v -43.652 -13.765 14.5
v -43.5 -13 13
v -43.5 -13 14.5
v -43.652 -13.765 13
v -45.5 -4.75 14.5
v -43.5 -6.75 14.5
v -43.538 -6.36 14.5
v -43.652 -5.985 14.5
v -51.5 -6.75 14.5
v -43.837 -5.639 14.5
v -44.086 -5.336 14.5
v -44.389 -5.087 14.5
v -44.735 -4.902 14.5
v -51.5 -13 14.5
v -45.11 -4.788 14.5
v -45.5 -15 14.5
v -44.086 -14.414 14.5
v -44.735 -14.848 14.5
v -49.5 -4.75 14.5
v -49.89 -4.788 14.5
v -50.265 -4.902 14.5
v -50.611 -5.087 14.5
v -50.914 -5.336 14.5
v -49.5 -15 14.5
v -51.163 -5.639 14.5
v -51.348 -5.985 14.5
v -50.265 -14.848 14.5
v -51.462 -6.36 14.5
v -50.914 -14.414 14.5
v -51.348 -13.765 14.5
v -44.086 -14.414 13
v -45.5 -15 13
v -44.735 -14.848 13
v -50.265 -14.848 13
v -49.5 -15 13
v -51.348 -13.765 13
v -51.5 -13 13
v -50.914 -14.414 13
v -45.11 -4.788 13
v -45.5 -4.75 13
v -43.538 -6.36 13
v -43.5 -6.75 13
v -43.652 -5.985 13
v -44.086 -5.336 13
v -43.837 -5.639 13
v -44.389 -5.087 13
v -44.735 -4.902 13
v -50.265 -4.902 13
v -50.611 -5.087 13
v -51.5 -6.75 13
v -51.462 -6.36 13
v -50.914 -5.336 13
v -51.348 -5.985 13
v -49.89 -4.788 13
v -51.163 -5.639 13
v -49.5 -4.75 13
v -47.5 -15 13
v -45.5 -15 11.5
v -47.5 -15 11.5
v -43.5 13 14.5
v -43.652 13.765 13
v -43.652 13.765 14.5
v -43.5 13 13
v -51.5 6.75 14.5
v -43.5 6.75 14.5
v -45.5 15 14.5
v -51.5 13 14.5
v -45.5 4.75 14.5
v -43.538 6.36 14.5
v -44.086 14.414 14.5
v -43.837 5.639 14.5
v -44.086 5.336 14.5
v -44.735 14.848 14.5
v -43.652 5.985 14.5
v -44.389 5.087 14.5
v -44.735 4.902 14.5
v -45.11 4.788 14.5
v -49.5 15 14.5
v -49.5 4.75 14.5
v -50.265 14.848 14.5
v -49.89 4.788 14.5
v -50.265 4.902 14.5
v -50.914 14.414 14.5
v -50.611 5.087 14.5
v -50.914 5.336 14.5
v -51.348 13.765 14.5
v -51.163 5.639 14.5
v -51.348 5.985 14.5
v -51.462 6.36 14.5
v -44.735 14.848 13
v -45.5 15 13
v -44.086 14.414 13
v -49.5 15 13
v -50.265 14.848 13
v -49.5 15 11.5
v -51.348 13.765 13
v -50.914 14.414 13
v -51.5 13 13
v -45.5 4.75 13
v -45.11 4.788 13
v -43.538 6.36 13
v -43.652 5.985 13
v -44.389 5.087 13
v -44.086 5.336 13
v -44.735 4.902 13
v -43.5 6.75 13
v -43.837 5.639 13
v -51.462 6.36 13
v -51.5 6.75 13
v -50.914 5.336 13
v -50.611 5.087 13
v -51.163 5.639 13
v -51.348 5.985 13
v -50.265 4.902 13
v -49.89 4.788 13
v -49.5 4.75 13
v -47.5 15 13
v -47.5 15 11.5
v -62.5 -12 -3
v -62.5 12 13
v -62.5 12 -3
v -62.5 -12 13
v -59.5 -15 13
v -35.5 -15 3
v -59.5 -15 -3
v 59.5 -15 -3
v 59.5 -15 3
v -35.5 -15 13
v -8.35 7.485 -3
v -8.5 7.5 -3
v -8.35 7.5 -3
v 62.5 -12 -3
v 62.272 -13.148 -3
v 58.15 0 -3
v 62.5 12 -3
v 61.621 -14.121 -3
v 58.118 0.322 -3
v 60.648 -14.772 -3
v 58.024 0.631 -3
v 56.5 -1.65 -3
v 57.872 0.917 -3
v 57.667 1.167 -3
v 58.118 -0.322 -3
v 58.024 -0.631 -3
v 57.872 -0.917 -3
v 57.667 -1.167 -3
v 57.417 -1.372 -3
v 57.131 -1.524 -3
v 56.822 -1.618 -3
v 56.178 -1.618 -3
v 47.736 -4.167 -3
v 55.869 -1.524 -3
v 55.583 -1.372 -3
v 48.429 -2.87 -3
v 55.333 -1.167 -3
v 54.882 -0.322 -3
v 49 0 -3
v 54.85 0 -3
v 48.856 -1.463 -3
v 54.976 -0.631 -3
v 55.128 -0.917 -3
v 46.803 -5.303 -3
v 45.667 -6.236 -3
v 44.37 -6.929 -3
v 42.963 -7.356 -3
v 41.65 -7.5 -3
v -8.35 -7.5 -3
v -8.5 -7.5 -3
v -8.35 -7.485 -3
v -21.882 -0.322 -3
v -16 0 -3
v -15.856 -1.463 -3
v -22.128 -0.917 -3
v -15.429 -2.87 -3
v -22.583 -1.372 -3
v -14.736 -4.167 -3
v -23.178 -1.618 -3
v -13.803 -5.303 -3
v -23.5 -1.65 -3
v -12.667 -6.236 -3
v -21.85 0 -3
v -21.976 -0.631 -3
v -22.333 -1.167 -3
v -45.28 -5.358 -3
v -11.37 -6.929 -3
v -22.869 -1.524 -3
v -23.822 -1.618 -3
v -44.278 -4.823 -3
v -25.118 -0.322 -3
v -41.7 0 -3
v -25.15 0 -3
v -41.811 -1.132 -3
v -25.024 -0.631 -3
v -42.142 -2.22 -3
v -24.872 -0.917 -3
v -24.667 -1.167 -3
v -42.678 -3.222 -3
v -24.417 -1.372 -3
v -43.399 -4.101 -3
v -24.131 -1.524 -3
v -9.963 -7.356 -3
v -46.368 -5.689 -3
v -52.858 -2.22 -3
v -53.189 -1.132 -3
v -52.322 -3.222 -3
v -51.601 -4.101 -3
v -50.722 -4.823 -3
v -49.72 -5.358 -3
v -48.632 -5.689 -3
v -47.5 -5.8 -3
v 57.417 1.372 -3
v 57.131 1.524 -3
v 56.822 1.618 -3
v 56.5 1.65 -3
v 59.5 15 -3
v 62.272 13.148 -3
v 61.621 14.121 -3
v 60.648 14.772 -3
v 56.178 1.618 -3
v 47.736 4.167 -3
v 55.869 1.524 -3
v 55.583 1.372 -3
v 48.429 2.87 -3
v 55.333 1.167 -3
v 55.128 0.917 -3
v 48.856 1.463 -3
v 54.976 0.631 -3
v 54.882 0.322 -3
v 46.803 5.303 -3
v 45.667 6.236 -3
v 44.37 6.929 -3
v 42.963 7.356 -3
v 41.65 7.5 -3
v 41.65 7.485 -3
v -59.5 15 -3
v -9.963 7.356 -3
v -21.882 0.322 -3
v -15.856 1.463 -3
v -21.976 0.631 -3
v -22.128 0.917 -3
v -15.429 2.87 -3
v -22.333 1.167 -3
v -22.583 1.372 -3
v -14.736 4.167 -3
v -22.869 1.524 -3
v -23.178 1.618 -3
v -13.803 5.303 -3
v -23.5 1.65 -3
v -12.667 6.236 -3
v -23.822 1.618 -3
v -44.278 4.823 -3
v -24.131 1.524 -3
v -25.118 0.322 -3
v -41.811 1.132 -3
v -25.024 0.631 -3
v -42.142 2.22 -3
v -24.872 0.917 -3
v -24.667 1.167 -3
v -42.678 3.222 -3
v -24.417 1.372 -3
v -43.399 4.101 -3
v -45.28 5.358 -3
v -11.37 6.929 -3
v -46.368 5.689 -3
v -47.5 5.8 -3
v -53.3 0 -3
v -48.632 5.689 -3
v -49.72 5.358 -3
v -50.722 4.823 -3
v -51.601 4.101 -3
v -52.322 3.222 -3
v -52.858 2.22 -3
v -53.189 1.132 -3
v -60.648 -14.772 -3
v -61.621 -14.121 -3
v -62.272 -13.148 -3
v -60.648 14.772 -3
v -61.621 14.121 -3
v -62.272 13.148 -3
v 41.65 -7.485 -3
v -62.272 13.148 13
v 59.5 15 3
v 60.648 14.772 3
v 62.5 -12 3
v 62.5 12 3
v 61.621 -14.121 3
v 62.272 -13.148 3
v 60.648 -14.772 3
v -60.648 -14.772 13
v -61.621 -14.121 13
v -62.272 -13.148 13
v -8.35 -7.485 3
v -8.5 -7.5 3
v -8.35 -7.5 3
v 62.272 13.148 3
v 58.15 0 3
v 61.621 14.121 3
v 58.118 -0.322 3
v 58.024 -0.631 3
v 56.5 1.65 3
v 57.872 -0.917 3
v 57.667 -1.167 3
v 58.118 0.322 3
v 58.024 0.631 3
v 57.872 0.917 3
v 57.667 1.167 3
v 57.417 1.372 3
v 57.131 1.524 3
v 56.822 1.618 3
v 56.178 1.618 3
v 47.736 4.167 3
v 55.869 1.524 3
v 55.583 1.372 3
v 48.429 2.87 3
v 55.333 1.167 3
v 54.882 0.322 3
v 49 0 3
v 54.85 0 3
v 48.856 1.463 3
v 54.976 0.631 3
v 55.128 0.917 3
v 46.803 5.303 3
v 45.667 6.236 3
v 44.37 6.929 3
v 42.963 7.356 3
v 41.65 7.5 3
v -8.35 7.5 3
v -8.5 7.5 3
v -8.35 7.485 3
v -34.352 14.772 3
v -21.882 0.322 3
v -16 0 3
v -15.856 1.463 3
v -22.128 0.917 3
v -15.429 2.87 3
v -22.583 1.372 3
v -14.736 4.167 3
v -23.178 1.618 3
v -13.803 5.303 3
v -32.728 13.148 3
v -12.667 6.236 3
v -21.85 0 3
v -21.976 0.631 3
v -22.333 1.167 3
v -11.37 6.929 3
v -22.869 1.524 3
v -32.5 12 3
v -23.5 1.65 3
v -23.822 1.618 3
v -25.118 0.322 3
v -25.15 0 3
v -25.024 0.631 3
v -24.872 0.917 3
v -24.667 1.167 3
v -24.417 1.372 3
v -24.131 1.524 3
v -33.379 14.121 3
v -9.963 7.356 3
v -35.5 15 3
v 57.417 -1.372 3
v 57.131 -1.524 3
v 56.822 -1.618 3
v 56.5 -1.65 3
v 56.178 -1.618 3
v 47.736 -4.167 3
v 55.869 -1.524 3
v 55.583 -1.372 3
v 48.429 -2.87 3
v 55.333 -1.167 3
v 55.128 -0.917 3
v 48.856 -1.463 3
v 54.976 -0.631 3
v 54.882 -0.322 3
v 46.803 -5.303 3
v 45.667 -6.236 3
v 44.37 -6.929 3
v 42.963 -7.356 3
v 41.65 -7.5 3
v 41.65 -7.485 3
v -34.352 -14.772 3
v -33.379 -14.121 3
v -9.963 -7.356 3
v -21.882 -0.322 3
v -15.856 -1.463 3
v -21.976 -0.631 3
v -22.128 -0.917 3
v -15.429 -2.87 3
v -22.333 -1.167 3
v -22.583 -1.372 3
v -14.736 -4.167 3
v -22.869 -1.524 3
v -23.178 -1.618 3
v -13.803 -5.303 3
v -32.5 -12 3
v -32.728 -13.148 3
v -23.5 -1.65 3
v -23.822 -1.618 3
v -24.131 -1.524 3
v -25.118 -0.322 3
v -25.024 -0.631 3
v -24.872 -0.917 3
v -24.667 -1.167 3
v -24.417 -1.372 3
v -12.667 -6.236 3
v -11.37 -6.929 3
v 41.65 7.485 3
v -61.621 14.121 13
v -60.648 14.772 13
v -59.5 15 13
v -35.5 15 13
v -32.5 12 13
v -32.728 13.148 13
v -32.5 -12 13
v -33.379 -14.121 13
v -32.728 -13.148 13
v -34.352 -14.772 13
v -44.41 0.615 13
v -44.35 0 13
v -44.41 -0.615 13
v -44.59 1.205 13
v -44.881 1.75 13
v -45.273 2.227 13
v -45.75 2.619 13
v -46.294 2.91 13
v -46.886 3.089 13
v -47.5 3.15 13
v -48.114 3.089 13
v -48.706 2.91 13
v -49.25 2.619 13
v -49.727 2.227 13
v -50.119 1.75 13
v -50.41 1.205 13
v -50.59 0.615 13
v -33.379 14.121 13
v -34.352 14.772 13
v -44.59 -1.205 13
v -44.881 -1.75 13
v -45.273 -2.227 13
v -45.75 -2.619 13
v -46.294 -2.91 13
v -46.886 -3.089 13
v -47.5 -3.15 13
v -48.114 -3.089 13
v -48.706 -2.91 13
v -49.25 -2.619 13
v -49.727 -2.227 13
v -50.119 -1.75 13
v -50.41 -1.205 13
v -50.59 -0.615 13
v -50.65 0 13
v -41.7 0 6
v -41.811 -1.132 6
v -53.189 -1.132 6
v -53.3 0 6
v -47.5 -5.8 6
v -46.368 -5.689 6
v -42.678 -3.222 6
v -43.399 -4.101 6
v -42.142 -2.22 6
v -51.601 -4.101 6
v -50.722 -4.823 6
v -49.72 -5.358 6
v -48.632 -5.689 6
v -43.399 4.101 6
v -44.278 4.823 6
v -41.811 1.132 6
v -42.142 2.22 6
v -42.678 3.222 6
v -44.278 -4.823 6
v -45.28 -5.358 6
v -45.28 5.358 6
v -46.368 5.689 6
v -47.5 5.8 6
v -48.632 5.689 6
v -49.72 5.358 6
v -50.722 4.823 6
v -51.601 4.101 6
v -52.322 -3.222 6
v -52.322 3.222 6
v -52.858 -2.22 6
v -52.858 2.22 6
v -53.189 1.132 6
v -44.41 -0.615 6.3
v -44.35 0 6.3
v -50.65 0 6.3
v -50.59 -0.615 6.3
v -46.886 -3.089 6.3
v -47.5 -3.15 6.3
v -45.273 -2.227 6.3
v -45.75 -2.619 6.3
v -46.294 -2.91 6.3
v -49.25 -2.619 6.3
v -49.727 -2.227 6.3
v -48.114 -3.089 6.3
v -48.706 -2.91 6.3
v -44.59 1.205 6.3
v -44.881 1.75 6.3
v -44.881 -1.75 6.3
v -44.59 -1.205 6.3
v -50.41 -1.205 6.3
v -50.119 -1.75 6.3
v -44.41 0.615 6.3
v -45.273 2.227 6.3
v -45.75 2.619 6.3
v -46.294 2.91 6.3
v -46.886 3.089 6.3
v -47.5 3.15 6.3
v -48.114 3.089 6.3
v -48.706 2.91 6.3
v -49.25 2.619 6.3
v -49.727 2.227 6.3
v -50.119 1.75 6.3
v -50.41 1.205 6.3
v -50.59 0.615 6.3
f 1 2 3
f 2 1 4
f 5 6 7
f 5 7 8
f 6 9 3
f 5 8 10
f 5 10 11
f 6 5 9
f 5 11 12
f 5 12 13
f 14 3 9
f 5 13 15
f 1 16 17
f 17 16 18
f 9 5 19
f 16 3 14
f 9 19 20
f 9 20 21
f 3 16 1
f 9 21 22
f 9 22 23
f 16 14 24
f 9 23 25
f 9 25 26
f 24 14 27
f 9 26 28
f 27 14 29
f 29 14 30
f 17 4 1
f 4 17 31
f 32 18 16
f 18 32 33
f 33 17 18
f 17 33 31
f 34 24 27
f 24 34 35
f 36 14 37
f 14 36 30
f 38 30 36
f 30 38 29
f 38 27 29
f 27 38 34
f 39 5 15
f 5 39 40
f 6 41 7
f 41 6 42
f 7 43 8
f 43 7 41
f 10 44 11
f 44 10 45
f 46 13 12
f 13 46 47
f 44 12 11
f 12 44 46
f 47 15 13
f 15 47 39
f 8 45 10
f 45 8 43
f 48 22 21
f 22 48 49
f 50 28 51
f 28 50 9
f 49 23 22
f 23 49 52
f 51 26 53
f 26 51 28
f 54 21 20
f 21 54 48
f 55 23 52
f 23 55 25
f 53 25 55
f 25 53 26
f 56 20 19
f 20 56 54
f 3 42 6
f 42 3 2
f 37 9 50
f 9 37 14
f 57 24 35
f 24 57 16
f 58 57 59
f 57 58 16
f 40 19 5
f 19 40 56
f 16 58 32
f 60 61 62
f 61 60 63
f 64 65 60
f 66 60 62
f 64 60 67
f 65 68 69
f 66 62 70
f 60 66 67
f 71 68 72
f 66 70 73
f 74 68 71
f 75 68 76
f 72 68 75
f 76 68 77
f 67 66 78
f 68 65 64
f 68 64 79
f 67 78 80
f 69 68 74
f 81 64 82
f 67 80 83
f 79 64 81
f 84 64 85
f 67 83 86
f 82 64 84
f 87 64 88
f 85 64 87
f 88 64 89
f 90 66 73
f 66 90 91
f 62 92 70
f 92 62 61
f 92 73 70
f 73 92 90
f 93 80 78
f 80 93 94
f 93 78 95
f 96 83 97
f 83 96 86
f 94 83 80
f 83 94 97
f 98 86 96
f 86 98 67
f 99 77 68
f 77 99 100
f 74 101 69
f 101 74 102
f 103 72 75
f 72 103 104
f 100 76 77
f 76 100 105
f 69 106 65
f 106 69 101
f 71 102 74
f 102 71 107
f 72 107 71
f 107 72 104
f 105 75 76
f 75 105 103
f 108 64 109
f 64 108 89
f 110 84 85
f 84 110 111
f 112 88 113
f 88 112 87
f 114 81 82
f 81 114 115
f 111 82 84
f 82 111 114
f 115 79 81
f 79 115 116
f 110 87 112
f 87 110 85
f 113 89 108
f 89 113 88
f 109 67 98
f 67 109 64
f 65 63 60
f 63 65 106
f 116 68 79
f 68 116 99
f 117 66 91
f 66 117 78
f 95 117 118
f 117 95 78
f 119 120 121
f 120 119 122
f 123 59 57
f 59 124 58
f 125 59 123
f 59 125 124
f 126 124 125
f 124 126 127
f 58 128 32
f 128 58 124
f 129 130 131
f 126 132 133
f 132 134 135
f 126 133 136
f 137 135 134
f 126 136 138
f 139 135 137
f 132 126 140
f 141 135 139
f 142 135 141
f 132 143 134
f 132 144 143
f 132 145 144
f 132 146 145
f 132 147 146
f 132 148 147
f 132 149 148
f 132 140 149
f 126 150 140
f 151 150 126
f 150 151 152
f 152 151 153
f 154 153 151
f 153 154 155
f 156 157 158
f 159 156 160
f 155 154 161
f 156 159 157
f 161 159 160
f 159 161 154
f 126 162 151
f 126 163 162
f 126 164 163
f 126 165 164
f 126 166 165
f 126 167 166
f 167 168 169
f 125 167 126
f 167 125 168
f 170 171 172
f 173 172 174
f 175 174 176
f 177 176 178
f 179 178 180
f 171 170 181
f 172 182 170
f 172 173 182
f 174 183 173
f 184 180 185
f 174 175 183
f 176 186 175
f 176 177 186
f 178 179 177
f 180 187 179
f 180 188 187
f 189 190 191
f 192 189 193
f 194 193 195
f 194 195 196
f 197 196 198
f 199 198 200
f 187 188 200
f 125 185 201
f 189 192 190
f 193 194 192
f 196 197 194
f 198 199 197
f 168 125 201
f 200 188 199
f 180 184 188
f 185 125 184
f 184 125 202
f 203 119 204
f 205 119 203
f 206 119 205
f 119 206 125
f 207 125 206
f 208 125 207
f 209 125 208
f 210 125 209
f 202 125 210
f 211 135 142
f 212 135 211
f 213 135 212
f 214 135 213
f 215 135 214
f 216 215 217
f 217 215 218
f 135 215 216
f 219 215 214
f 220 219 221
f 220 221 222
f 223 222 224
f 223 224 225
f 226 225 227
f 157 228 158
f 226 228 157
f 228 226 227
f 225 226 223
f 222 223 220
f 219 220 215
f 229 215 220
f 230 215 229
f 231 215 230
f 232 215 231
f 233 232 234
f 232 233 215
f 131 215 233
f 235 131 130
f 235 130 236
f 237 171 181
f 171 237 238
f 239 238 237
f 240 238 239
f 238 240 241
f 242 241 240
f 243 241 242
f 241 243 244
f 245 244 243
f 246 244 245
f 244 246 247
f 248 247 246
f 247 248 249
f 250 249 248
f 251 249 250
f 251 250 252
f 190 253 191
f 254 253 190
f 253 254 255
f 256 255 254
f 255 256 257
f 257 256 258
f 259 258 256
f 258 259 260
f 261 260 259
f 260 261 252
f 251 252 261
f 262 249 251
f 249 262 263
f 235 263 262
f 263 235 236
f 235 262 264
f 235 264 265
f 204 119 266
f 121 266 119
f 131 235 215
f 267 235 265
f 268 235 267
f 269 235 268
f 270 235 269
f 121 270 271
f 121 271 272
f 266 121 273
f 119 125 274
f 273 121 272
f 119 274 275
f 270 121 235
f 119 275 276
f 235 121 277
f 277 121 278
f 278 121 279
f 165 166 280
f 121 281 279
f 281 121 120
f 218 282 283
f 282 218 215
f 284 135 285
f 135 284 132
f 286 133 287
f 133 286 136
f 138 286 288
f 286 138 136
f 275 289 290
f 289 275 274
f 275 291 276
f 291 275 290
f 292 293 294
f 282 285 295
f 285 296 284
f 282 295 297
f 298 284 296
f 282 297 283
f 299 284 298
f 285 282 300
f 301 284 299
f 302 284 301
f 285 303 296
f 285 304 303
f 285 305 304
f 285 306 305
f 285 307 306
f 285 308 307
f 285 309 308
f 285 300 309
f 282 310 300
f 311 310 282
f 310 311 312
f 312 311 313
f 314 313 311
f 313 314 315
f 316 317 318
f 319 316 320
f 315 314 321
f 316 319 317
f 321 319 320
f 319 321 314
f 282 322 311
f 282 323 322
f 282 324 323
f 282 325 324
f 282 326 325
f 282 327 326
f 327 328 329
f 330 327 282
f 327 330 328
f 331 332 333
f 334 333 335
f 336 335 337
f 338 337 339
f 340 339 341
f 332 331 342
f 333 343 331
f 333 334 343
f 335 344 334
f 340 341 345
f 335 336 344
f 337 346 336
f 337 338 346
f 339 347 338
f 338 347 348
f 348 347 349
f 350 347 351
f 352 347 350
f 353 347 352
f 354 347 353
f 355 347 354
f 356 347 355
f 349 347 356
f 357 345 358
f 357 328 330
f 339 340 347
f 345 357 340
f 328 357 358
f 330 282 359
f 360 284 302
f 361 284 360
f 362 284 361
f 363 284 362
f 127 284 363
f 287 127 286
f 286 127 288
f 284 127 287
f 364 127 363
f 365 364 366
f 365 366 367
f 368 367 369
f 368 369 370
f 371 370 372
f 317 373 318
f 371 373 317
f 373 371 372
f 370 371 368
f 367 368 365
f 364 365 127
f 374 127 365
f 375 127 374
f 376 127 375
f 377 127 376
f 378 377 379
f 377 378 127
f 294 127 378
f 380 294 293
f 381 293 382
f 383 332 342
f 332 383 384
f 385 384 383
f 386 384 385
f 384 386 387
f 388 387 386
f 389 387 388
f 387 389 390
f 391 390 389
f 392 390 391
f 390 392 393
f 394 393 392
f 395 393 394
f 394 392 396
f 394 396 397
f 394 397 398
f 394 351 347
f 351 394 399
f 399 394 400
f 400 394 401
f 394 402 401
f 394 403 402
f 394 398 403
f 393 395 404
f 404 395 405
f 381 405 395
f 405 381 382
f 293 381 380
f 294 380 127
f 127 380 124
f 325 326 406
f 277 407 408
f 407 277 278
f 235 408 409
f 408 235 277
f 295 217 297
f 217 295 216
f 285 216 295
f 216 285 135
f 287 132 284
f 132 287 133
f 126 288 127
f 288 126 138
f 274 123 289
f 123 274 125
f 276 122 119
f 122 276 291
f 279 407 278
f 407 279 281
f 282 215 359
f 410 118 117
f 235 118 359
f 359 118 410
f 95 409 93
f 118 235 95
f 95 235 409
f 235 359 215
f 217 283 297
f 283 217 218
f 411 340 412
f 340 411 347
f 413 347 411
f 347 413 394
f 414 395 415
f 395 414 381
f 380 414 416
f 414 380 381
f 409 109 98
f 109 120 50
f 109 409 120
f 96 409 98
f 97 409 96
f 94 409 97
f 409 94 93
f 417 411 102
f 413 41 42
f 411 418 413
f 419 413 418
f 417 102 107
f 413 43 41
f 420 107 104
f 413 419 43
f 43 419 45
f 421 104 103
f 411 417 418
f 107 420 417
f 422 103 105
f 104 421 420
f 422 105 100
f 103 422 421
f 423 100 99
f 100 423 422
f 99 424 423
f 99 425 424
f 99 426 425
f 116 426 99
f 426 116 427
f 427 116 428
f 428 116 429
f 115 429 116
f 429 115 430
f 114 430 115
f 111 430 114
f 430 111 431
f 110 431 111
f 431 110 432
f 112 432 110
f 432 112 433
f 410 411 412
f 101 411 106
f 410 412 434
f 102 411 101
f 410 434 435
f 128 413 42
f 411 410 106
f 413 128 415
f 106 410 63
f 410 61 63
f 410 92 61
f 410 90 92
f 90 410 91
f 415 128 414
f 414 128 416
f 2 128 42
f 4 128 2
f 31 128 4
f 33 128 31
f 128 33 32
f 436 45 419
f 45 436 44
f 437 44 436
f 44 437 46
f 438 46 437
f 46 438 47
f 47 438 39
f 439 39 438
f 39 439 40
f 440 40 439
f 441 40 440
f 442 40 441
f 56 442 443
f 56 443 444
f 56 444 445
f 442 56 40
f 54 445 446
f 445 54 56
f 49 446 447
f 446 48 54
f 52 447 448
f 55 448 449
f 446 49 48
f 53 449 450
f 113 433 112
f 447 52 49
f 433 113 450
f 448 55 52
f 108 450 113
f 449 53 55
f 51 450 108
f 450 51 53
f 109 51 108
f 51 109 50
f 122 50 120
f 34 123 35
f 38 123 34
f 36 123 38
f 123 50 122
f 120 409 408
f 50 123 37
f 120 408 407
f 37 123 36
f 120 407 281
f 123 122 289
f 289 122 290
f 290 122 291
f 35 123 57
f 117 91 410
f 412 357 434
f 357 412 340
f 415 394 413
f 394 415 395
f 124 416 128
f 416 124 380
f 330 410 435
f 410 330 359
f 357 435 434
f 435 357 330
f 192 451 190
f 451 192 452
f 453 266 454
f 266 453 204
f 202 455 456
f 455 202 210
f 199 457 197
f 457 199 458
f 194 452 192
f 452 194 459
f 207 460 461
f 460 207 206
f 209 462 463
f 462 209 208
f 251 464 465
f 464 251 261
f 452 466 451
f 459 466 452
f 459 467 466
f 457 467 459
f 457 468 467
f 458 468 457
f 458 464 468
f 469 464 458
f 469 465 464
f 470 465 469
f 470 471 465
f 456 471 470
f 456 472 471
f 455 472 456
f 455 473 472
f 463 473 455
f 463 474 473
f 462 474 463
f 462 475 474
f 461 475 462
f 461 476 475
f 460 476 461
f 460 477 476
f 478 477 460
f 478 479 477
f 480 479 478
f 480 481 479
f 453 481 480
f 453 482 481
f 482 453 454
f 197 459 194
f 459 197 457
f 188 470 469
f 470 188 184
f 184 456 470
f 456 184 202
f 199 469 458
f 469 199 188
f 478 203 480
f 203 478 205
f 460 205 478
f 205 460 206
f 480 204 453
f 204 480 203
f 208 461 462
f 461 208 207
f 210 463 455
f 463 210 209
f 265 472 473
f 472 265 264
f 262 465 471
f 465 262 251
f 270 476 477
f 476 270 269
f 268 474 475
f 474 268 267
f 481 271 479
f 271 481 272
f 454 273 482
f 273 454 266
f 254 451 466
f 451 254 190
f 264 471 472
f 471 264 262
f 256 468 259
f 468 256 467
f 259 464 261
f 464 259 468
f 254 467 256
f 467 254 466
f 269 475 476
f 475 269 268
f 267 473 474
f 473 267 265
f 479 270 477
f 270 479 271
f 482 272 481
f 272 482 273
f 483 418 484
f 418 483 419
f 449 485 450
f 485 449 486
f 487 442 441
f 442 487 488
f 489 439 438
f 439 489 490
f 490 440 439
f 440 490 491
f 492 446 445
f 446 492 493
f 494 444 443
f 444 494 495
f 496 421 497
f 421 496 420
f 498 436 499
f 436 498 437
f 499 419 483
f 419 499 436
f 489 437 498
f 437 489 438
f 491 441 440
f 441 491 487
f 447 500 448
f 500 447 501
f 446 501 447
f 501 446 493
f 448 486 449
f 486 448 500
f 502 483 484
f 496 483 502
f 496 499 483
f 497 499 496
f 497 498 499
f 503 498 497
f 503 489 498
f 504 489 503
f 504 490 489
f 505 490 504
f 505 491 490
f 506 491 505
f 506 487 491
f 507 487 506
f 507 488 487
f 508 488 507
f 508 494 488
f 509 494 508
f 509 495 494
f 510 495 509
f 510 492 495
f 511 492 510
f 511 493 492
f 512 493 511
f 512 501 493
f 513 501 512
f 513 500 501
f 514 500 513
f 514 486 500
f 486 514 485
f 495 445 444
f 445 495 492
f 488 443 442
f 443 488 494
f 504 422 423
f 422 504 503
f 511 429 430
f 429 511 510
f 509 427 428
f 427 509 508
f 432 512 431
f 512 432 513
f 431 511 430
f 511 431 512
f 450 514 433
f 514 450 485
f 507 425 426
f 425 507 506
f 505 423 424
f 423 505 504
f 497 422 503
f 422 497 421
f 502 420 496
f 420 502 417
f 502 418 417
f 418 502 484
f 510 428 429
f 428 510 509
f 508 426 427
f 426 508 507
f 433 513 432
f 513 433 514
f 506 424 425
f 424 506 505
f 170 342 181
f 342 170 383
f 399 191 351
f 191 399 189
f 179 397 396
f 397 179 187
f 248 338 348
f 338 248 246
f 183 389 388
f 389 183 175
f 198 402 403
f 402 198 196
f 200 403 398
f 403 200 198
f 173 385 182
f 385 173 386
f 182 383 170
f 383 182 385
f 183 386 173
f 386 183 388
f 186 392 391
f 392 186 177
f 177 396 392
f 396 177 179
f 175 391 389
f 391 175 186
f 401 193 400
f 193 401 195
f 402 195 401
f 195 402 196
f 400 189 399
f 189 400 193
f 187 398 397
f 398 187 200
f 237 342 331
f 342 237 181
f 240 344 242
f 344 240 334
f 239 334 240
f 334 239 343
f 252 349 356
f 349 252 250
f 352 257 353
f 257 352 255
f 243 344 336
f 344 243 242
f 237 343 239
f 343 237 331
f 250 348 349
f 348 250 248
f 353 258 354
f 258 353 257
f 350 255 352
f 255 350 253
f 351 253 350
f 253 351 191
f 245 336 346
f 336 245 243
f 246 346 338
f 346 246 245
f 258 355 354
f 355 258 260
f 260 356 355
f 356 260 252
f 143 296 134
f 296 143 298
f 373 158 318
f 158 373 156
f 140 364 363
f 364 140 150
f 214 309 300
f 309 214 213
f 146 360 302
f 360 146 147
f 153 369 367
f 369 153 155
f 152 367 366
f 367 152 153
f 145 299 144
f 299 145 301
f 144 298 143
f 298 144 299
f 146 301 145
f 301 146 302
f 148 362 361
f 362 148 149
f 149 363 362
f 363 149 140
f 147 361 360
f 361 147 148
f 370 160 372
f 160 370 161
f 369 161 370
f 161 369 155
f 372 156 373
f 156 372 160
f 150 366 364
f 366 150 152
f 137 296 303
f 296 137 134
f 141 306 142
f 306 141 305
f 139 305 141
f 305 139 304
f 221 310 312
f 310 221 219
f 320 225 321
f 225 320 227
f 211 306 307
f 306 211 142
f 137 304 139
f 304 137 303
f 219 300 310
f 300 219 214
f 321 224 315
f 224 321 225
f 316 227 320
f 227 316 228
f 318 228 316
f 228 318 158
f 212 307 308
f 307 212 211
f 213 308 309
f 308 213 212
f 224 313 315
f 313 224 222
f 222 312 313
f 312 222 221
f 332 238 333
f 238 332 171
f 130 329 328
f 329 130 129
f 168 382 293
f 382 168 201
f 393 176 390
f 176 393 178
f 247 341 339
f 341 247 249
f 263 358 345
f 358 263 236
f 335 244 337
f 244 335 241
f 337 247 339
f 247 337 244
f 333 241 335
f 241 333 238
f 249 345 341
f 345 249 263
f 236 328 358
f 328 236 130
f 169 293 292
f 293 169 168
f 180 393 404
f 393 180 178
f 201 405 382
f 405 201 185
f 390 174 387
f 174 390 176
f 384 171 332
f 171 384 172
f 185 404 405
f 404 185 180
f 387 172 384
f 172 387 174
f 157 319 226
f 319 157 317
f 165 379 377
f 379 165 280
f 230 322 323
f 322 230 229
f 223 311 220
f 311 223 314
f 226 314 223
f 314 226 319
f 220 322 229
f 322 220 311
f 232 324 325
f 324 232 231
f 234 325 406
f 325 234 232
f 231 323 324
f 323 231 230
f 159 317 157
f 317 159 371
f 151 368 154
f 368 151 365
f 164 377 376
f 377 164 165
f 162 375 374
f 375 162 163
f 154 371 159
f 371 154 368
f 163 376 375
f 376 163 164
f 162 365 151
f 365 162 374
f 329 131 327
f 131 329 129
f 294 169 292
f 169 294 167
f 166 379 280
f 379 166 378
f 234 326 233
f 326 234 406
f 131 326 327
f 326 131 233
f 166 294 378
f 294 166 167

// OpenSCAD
/* 
   === RebeliX BoX ===

   power supply holder 24V/350W
   GNU GPL v3
   Martin Neruda <neruda@RebeliX.cz>
   http://www.RebeliX.cz
*/

//include <../configuration.scad>
include <../../inc/functions.scad>

M6_screw_offset = M6x14_offset;
M3_screw_offset = 6.5;
M3_screws_distance = 80;

holder_length = 95 + profile_width;
holder_width = profile_width;
holder_base_height = 6;
holder_height = holder_base_height + 10;

module supply_holder_base()
{
  rounded_box(holder_length,holder_width,holder_base_height,6,1,1,1,1);
  
  translate([-holder_length/2 + profile_width/2,0,holder_height/2 - holder_base_height/2])rounded_box(profile_width,holder_width,holder_height,6,1,1,1,1);
  
  translate([-holder_length/2 + profile_width/2,0,-holder_base_height/2 + holder_height]) rotate([0,0,90]) drazka();
}

module supply_holder_cuts()
{
  // Otvory pro M6 srouby
  translate([-holder_length/2 + profile_width/2,0,-holder_base_height/2 + holder_height - M6_screw_offset]) rotate([180,0,0]) screw_hole(1,0,M6_head_D,M6_screw_D);

  // M3 otvory
  translate([-holder_length/2 + profile_width + 9,0,holder_base_height/2 - M3_screw_offset]) rotate([180,0,0]) screw_hole(1);
  
  translate([-holder_length/2 + profile_width + 9 + M3_screws_distance,0,holder_base_height/2 - M3_screw_offset]) rotate([180,0,0]) screw_hole(1);
  
  // Vyrez v drzaku
  translate([-holder_length/2 + profile_width + 9 + 15,0,0]) cylinder(d=holder_width/2,h=30,$fn=32,center=true);
  translate([-holder_length/2 + profile_width + 9 + M3_screws_distance - 15,0,0]) cylinder(d=holder_width/2,h=30,$fn=32,center=true);
  translate([15 + M3_screw_D/2,0,0]) cube([M3_screws_distance - 30,holder_width/2,30],center=true); 
}

module supply_holder()
{
  difference()
  {
    supply_holder_base();
	supply_holder_cuts();
  }
}

supply_holder();
